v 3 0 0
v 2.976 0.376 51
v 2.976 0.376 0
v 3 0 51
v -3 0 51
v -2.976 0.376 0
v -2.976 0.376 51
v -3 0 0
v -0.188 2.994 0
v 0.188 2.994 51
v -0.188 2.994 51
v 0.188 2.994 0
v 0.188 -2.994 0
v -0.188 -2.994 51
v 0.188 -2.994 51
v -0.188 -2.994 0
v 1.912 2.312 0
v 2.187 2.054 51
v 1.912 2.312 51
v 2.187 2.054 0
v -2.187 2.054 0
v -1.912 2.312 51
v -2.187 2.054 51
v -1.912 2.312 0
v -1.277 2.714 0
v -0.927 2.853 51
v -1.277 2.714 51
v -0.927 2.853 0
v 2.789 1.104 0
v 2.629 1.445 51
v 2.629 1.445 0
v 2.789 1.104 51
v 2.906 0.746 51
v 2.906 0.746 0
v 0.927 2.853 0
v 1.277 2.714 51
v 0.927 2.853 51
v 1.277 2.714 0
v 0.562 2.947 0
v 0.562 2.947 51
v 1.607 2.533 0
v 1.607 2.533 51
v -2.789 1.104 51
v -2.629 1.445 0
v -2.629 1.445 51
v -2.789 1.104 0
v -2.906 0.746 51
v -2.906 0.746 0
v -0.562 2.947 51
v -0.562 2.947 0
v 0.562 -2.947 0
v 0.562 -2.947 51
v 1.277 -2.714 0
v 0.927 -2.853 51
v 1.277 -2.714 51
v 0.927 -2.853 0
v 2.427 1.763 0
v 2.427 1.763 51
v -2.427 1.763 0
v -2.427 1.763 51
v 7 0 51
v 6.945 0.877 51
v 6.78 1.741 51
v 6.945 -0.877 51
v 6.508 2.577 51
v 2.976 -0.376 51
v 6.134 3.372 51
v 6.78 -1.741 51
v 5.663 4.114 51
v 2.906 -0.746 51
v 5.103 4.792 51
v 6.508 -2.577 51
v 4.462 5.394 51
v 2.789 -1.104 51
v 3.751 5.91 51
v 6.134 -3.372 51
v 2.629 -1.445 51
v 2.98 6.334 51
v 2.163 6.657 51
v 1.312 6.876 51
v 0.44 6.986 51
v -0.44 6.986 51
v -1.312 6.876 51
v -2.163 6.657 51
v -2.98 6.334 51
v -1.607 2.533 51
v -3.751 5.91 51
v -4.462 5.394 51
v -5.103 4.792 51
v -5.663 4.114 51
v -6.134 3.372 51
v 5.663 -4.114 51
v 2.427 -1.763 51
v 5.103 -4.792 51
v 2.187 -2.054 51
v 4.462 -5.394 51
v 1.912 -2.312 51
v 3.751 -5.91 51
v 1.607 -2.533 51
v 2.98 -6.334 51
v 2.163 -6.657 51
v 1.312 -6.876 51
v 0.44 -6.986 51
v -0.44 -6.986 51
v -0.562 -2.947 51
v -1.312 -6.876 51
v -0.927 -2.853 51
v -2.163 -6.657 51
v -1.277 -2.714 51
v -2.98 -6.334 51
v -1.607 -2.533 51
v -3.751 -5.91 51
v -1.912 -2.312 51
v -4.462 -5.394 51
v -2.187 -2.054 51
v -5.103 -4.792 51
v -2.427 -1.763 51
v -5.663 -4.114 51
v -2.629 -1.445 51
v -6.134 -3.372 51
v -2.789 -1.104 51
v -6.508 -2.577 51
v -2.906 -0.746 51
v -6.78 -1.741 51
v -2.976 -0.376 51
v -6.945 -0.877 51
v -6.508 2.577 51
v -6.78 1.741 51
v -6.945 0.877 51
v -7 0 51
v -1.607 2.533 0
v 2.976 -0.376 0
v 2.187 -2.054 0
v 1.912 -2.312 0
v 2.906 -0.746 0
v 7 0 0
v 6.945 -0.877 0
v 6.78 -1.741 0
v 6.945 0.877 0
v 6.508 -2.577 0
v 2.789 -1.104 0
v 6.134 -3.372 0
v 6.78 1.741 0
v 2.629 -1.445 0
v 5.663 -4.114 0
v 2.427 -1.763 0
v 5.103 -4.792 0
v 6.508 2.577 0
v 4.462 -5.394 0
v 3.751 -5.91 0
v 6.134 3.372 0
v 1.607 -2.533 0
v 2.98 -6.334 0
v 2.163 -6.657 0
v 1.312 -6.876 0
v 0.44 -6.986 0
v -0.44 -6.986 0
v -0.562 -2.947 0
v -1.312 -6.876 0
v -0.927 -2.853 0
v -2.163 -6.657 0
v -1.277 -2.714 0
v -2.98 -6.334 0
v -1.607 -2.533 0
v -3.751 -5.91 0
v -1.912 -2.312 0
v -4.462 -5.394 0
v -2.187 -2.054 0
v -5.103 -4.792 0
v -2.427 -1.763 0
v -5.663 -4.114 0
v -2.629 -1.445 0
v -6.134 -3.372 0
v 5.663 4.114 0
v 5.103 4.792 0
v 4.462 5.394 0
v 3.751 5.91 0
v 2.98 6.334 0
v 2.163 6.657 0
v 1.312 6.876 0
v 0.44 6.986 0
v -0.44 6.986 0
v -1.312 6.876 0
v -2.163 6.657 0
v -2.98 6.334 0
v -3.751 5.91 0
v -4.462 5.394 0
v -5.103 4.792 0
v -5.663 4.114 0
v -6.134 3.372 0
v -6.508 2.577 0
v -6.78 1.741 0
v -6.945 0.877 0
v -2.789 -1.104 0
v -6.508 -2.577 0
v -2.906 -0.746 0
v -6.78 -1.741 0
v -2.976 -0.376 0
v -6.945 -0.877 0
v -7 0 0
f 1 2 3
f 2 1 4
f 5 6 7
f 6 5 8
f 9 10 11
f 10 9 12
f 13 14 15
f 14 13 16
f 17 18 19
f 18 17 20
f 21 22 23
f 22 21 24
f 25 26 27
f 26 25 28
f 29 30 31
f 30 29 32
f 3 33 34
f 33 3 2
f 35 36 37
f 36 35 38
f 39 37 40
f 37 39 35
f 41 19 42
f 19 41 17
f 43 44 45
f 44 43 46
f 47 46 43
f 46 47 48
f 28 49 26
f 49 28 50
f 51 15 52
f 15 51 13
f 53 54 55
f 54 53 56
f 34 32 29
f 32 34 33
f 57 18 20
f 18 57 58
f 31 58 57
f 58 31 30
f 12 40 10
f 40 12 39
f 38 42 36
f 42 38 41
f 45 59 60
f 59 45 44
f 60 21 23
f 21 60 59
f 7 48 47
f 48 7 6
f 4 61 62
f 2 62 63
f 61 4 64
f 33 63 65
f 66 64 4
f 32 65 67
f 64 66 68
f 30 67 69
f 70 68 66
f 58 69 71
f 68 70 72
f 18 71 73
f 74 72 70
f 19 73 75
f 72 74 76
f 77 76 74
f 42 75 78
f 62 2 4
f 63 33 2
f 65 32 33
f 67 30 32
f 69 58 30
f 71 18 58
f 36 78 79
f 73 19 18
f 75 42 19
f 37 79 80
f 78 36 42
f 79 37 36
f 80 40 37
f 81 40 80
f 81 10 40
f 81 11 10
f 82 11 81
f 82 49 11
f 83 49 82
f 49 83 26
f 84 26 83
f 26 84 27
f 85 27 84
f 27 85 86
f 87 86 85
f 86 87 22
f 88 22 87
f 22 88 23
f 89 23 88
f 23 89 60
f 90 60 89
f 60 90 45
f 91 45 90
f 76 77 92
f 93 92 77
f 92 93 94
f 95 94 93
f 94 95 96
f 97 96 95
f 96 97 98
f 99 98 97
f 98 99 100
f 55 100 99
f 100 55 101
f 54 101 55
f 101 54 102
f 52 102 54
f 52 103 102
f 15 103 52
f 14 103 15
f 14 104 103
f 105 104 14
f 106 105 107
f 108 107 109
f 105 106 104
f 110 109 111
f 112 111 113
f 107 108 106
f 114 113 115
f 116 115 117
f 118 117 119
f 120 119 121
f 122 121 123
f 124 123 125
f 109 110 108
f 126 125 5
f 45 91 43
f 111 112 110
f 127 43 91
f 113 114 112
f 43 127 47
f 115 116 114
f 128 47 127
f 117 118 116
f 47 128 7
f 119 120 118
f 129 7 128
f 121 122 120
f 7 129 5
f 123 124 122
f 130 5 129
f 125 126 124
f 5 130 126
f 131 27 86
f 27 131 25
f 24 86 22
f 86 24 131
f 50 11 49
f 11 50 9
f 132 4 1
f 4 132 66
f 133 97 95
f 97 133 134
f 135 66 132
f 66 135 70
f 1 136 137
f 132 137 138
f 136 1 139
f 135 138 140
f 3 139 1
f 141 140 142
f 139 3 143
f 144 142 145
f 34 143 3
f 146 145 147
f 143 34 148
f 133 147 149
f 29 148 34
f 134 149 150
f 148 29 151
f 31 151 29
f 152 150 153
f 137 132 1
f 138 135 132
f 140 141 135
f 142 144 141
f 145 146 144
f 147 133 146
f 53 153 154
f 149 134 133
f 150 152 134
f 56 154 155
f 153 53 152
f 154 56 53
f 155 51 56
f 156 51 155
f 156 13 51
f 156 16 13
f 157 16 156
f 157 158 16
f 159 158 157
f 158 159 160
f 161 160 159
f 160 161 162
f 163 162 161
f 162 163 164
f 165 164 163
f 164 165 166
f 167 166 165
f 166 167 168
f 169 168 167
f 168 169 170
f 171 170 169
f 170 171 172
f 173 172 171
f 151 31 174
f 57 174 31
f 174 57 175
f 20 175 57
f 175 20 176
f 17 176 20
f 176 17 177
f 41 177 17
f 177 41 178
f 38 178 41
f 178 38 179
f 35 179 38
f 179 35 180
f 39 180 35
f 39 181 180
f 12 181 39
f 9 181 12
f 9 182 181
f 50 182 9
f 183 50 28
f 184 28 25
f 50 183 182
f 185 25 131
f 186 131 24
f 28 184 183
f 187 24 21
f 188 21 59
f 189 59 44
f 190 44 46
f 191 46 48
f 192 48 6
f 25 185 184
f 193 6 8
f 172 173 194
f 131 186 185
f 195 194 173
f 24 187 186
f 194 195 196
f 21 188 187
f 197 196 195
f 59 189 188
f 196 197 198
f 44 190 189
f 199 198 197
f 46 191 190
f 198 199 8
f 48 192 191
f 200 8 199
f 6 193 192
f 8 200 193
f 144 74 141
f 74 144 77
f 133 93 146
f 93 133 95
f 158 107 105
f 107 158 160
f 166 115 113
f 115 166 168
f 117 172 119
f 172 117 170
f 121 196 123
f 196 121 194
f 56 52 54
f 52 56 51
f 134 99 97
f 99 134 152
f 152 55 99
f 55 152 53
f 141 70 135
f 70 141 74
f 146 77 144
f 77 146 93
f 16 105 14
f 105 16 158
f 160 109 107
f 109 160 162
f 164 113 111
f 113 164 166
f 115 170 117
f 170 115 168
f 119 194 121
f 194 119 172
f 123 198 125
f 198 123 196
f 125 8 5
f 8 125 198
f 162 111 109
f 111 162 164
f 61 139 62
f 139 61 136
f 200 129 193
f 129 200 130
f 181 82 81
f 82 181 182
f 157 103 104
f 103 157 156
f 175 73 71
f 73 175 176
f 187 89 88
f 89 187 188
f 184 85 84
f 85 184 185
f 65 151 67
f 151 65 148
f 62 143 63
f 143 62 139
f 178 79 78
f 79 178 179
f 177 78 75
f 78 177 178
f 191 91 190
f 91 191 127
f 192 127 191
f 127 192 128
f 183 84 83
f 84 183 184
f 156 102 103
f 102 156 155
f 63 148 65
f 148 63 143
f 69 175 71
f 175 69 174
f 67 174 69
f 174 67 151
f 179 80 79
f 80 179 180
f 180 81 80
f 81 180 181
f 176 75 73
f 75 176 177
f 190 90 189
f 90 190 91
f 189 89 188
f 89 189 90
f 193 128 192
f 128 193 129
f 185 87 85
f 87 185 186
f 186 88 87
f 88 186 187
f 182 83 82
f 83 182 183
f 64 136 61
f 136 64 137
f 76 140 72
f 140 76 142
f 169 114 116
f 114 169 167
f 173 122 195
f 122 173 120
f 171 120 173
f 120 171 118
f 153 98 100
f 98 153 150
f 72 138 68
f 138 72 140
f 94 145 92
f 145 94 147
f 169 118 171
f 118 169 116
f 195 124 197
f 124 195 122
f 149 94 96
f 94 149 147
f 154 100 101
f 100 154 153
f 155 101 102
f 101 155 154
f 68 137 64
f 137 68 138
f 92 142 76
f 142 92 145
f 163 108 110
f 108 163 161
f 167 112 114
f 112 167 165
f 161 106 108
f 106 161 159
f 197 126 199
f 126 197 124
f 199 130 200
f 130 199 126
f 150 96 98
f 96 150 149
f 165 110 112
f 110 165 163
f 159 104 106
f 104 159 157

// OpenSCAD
$fn = 50;


difference() {
	union() {
		cylinder(h = 51, r = 7.0000000000);
	}
	union() {
		cylinder(h = 51, r = 3.0000000000);
		cylinder(h = 51, r = 1.5000000000);
		cylinder(h = 51, r = 1.5000000000);
		cylinder(h = 51, r = 1.5000000000);
	}
}
